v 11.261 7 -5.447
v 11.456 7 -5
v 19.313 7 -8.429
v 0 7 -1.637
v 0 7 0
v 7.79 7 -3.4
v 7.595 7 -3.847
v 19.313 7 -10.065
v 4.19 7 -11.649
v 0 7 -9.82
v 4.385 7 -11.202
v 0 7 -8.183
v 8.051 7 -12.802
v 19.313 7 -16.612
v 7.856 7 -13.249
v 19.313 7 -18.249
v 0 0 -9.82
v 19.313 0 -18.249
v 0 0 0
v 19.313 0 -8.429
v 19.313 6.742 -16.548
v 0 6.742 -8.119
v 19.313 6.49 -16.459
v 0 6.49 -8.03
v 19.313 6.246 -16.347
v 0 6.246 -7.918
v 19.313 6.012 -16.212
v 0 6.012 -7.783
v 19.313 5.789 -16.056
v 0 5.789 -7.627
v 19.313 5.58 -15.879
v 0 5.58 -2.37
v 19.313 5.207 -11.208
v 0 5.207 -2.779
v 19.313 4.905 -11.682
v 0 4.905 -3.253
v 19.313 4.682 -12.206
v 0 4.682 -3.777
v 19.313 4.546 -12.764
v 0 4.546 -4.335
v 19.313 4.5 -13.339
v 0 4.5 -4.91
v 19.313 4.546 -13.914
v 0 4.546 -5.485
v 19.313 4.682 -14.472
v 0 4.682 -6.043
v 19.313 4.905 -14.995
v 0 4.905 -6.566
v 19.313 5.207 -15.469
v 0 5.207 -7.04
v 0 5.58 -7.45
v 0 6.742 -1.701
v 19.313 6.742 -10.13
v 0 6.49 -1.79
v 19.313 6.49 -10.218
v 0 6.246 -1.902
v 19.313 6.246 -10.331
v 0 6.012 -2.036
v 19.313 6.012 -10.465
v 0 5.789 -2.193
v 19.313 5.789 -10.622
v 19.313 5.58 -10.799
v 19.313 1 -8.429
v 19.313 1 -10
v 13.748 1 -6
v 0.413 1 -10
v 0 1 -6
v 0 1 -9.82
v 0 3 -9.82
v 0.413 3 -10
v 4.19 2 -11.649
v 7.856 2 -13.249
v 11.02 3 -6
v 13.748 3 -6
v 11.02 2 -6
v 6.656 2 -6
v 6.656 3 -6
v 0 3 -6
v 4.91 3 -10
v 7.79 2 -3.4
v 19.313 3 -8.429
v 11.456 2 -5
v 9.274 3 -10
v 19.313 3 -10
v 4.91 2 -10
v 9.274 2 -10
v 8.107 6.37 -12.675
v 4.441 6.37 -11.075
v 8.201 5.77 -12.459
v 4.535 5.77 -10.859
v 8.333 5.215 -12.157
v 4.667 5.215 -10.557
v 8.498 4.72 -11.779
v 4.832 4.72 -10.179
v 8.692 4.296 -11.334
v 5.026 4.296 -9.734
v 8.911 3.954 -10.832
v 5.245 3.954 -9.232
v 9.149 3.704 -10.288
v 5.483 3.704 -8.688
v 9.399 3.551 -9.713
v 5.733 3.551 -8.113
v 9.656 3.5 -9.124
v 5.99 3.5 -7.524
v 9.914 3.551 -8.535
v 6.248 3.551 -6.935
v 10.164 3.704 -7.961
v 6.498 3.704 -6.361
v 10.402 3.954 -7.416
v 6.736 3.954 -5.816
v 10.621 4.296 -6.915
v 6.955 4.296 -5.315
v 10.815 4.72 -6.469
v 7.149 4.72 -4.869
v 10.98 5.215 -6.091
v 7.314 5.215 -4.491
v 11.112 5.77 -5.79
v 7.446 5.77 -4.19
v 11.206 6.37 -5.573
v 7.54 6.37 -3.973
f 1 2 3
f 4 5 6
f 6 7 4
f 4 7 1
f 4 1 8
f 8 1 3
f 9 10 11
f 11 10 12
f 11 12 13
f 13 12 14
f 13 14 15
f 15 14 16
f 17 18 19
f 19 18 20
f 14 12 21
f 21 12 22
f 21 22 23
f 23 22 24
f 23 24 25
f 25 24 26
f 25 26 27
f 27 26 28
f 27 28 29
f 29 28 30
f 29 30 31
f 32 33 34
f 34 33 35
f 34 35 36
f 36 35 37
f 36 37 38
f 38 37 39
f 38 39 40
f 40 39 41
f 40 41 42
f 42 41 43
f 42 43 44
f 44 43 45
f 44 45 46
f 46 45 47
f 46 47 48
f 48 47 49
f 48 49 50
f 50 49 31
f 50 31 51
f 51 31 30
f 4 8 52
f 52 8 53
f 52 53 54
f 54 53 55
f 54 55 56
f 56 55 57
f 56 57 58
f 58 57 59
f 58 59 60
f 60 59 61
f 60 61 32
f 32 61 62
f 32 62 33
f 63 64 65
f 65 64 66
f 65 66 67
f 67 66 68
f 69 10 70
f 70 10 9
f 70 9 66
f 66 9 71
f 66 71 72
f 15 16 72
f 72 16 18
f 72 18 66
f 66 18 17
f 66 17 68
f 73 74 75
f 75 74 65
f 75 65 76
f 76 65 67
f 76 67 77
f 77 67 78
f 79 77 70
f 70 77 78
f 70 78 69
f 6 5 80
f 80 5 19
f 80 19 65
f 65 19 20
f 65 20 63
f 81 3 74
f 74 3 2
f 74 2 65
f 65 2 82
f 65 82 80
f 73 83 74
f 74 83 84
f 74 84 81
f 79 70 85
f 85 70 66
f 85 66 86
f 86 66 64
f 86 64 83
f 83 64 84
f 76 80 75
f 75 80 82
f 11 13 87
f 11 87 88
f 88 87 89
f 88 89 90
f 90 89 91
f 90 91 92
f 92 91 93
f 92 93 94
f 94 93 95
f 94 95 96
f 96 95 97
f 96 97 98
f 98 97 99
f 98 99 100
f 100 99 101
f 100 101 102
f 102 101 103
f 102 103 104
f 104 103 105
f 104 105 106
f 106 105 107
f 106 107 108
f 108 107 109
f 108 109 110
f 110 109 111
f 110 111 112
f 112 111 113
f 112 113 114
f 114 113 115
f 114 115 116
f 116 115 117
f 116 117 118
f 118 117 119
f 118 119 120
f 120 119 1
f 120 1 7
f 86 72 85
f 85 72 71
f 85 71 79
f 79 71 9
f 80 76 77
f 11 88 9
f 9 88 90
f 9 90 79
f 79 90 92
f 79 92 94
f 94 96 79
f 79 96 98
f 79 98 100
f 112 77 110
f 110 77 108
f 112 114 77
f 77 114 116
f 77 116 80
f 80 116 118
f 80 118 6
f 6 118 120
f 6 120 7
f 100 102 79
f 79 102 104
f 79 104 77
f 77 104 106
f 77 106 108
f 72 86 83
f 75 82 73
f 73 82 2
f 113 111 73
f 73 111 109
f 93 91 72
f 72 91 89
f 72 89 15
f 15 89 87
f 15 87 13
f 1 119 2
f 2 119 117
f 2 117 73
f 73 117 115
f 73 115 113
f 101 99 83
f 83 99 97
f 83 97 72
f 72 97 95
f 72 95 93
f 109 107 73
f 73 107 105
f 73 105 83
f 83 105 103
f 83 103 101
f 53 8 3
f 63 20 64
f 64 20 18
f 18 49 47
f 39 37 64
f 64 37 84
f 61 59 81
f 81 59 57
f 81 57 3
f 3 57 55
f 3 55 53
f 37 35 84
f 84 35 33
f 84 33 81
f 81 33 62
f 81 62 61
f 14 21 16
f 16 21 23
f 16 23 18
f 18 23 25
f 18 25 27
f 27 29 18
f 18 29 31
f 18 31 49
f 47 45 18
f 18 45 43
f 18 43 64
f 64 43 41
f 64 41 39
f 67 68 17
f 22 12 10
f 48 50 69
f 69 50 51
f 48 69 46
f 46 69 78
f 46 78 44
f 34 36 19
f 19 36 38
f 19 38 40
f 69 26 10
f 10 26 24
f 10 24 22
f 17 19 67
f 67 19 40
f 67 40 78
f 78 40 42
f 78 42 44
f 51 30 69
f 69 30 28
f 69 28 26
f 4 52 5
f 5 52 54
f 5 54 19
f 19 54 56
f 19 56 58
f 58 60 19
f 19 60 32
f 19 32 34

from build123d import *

# Parameters (mm, degrees)
BOSS_EXTRUDE2_DEPTH     = 7
CUT_EXTRUDE4_DEPTH      = 25
CUT_EXTRUDE7_DEPTH      = 4
SKETCH6_W               = 4
SKETCH6_H               = 2
CUT_EXTRUDE5_DEPTH      = 23.912878475
CUT_EXTRUDE5_DEPTH_BACK = 4.6
SKETCH12_W              = 3.6
SKETCH12_H              = 9.819805061
CUT_EXTRUDE10_DEPTH     = 8
SKETCH13_W              = 3.6
SKETCH13_H              = 9.819805061
CUT_EXTRUDE11_DEPTH     = 8


with BuildPart() as part:
    # Sketch2 → Boss-Extrude2 (new body)
    with BuildSketch(Plane(origin=(0, 0, 0), x_dir=(1, 0, 0), z_dir=(0, 1, 0))):
        Polygon((0, 0), (-3.6, 8.248636251), (19.312878475, 18.248636251), (22.912878475, 10), align=None)
    extrude(amount=BOSS_EXTRUDE2_DEPTH)

    # Sketch4 → Cut-Extrude4 (cut)
    with BuildSketch(Plane(origin=(0, 0, 0), x_dir=(0.4, 0, 0.916515139), z_dir=(-0.916515139, 0, 0.4))):
        with BuildLine():
            Line((-7.5, 7), (-1.5, 7))
            ThreePointArc((-1.5, 7), (-4.5, 4.5), (-7.5, 7))
        make_face()
    extrude(amount=-CUT_EXTRUDE4_DEPTH, mode=Mode.SUBTRACT)

    # Sketch8 → Cut-Extrude7 (cut)
    with BuildSketch(Plane(origin=(11.456439237, 0, -5), x_dir=(-0.4, 0, -0.916515139), z_dir=(0.916515139, 0, -0.4))):
        with BuildLine():
            Line((0.48751947, 7), (0, 7))
            Line((0, 7), (0, 2))
            Line((0, 2), (9, 2))
            Line((9, 2), (9, 7))
            Line((9, 7), (8.51248053, 7))
            ThreePointArc((8.51248053, 7), (4.5, 3.5), (0.48751947, 7))
        make_face()
    extrude(amount=-CUT_EXTRUDE7_DEPTH, mode=Mode.SUBTRACT)

    # Sketch6 → Cut-Extrude5 (cut, two sides)
    with BuildSketch(Plane(origin=(0, 0, 0), x_dir=(0, 0, -1), z_dir=(1, 0, 0))) as cut_extrude5_sk:
        with Locations((8, 2)):
            Rectangle(SKETCH6_W, SKETCH6_H)
    extrude(amount=CUT_EXTRUDE5_DEPTH, mode=Mode.SUBTRACT)
    extrude(cut_extrude5_sk.sketch, amount=-CUT_EXTRUDE5_DEPTH_BACK, mode=Mode.SUBTRACT)

    # Sketch12 → Cut-Extrude10 (cut, through all)
    with BuildSketch(Plane(origin=(0, 0, 0), x_dir=(1, 0, 0), z_dir=(0, 1, 0))):
        with Locations((21.112878475, 13.338733721)):
            Rectangle(SKETCH12_W, SKETCH12_H)
    extrude(amount=CUT_EXTRUDE10_DEPTH, mode=Mode.SUBTRACT)

    # Sketch13 → Cut-Extrude11 (cut, through all)
    with BuildSketch(Plane(origin=(0, 0, 0), x_dir=(1, 0, 0), z_dir=(0, 1, 0))):
        with Locations((-1.8, 4.909902531)):
            Rectangle(SKETCH13_W, SKETCH13_H)
    extrude(amount=CUT_EXTRUDE11_DEPTH, mode=Mode.SUBTRACT)


solid = part.part
